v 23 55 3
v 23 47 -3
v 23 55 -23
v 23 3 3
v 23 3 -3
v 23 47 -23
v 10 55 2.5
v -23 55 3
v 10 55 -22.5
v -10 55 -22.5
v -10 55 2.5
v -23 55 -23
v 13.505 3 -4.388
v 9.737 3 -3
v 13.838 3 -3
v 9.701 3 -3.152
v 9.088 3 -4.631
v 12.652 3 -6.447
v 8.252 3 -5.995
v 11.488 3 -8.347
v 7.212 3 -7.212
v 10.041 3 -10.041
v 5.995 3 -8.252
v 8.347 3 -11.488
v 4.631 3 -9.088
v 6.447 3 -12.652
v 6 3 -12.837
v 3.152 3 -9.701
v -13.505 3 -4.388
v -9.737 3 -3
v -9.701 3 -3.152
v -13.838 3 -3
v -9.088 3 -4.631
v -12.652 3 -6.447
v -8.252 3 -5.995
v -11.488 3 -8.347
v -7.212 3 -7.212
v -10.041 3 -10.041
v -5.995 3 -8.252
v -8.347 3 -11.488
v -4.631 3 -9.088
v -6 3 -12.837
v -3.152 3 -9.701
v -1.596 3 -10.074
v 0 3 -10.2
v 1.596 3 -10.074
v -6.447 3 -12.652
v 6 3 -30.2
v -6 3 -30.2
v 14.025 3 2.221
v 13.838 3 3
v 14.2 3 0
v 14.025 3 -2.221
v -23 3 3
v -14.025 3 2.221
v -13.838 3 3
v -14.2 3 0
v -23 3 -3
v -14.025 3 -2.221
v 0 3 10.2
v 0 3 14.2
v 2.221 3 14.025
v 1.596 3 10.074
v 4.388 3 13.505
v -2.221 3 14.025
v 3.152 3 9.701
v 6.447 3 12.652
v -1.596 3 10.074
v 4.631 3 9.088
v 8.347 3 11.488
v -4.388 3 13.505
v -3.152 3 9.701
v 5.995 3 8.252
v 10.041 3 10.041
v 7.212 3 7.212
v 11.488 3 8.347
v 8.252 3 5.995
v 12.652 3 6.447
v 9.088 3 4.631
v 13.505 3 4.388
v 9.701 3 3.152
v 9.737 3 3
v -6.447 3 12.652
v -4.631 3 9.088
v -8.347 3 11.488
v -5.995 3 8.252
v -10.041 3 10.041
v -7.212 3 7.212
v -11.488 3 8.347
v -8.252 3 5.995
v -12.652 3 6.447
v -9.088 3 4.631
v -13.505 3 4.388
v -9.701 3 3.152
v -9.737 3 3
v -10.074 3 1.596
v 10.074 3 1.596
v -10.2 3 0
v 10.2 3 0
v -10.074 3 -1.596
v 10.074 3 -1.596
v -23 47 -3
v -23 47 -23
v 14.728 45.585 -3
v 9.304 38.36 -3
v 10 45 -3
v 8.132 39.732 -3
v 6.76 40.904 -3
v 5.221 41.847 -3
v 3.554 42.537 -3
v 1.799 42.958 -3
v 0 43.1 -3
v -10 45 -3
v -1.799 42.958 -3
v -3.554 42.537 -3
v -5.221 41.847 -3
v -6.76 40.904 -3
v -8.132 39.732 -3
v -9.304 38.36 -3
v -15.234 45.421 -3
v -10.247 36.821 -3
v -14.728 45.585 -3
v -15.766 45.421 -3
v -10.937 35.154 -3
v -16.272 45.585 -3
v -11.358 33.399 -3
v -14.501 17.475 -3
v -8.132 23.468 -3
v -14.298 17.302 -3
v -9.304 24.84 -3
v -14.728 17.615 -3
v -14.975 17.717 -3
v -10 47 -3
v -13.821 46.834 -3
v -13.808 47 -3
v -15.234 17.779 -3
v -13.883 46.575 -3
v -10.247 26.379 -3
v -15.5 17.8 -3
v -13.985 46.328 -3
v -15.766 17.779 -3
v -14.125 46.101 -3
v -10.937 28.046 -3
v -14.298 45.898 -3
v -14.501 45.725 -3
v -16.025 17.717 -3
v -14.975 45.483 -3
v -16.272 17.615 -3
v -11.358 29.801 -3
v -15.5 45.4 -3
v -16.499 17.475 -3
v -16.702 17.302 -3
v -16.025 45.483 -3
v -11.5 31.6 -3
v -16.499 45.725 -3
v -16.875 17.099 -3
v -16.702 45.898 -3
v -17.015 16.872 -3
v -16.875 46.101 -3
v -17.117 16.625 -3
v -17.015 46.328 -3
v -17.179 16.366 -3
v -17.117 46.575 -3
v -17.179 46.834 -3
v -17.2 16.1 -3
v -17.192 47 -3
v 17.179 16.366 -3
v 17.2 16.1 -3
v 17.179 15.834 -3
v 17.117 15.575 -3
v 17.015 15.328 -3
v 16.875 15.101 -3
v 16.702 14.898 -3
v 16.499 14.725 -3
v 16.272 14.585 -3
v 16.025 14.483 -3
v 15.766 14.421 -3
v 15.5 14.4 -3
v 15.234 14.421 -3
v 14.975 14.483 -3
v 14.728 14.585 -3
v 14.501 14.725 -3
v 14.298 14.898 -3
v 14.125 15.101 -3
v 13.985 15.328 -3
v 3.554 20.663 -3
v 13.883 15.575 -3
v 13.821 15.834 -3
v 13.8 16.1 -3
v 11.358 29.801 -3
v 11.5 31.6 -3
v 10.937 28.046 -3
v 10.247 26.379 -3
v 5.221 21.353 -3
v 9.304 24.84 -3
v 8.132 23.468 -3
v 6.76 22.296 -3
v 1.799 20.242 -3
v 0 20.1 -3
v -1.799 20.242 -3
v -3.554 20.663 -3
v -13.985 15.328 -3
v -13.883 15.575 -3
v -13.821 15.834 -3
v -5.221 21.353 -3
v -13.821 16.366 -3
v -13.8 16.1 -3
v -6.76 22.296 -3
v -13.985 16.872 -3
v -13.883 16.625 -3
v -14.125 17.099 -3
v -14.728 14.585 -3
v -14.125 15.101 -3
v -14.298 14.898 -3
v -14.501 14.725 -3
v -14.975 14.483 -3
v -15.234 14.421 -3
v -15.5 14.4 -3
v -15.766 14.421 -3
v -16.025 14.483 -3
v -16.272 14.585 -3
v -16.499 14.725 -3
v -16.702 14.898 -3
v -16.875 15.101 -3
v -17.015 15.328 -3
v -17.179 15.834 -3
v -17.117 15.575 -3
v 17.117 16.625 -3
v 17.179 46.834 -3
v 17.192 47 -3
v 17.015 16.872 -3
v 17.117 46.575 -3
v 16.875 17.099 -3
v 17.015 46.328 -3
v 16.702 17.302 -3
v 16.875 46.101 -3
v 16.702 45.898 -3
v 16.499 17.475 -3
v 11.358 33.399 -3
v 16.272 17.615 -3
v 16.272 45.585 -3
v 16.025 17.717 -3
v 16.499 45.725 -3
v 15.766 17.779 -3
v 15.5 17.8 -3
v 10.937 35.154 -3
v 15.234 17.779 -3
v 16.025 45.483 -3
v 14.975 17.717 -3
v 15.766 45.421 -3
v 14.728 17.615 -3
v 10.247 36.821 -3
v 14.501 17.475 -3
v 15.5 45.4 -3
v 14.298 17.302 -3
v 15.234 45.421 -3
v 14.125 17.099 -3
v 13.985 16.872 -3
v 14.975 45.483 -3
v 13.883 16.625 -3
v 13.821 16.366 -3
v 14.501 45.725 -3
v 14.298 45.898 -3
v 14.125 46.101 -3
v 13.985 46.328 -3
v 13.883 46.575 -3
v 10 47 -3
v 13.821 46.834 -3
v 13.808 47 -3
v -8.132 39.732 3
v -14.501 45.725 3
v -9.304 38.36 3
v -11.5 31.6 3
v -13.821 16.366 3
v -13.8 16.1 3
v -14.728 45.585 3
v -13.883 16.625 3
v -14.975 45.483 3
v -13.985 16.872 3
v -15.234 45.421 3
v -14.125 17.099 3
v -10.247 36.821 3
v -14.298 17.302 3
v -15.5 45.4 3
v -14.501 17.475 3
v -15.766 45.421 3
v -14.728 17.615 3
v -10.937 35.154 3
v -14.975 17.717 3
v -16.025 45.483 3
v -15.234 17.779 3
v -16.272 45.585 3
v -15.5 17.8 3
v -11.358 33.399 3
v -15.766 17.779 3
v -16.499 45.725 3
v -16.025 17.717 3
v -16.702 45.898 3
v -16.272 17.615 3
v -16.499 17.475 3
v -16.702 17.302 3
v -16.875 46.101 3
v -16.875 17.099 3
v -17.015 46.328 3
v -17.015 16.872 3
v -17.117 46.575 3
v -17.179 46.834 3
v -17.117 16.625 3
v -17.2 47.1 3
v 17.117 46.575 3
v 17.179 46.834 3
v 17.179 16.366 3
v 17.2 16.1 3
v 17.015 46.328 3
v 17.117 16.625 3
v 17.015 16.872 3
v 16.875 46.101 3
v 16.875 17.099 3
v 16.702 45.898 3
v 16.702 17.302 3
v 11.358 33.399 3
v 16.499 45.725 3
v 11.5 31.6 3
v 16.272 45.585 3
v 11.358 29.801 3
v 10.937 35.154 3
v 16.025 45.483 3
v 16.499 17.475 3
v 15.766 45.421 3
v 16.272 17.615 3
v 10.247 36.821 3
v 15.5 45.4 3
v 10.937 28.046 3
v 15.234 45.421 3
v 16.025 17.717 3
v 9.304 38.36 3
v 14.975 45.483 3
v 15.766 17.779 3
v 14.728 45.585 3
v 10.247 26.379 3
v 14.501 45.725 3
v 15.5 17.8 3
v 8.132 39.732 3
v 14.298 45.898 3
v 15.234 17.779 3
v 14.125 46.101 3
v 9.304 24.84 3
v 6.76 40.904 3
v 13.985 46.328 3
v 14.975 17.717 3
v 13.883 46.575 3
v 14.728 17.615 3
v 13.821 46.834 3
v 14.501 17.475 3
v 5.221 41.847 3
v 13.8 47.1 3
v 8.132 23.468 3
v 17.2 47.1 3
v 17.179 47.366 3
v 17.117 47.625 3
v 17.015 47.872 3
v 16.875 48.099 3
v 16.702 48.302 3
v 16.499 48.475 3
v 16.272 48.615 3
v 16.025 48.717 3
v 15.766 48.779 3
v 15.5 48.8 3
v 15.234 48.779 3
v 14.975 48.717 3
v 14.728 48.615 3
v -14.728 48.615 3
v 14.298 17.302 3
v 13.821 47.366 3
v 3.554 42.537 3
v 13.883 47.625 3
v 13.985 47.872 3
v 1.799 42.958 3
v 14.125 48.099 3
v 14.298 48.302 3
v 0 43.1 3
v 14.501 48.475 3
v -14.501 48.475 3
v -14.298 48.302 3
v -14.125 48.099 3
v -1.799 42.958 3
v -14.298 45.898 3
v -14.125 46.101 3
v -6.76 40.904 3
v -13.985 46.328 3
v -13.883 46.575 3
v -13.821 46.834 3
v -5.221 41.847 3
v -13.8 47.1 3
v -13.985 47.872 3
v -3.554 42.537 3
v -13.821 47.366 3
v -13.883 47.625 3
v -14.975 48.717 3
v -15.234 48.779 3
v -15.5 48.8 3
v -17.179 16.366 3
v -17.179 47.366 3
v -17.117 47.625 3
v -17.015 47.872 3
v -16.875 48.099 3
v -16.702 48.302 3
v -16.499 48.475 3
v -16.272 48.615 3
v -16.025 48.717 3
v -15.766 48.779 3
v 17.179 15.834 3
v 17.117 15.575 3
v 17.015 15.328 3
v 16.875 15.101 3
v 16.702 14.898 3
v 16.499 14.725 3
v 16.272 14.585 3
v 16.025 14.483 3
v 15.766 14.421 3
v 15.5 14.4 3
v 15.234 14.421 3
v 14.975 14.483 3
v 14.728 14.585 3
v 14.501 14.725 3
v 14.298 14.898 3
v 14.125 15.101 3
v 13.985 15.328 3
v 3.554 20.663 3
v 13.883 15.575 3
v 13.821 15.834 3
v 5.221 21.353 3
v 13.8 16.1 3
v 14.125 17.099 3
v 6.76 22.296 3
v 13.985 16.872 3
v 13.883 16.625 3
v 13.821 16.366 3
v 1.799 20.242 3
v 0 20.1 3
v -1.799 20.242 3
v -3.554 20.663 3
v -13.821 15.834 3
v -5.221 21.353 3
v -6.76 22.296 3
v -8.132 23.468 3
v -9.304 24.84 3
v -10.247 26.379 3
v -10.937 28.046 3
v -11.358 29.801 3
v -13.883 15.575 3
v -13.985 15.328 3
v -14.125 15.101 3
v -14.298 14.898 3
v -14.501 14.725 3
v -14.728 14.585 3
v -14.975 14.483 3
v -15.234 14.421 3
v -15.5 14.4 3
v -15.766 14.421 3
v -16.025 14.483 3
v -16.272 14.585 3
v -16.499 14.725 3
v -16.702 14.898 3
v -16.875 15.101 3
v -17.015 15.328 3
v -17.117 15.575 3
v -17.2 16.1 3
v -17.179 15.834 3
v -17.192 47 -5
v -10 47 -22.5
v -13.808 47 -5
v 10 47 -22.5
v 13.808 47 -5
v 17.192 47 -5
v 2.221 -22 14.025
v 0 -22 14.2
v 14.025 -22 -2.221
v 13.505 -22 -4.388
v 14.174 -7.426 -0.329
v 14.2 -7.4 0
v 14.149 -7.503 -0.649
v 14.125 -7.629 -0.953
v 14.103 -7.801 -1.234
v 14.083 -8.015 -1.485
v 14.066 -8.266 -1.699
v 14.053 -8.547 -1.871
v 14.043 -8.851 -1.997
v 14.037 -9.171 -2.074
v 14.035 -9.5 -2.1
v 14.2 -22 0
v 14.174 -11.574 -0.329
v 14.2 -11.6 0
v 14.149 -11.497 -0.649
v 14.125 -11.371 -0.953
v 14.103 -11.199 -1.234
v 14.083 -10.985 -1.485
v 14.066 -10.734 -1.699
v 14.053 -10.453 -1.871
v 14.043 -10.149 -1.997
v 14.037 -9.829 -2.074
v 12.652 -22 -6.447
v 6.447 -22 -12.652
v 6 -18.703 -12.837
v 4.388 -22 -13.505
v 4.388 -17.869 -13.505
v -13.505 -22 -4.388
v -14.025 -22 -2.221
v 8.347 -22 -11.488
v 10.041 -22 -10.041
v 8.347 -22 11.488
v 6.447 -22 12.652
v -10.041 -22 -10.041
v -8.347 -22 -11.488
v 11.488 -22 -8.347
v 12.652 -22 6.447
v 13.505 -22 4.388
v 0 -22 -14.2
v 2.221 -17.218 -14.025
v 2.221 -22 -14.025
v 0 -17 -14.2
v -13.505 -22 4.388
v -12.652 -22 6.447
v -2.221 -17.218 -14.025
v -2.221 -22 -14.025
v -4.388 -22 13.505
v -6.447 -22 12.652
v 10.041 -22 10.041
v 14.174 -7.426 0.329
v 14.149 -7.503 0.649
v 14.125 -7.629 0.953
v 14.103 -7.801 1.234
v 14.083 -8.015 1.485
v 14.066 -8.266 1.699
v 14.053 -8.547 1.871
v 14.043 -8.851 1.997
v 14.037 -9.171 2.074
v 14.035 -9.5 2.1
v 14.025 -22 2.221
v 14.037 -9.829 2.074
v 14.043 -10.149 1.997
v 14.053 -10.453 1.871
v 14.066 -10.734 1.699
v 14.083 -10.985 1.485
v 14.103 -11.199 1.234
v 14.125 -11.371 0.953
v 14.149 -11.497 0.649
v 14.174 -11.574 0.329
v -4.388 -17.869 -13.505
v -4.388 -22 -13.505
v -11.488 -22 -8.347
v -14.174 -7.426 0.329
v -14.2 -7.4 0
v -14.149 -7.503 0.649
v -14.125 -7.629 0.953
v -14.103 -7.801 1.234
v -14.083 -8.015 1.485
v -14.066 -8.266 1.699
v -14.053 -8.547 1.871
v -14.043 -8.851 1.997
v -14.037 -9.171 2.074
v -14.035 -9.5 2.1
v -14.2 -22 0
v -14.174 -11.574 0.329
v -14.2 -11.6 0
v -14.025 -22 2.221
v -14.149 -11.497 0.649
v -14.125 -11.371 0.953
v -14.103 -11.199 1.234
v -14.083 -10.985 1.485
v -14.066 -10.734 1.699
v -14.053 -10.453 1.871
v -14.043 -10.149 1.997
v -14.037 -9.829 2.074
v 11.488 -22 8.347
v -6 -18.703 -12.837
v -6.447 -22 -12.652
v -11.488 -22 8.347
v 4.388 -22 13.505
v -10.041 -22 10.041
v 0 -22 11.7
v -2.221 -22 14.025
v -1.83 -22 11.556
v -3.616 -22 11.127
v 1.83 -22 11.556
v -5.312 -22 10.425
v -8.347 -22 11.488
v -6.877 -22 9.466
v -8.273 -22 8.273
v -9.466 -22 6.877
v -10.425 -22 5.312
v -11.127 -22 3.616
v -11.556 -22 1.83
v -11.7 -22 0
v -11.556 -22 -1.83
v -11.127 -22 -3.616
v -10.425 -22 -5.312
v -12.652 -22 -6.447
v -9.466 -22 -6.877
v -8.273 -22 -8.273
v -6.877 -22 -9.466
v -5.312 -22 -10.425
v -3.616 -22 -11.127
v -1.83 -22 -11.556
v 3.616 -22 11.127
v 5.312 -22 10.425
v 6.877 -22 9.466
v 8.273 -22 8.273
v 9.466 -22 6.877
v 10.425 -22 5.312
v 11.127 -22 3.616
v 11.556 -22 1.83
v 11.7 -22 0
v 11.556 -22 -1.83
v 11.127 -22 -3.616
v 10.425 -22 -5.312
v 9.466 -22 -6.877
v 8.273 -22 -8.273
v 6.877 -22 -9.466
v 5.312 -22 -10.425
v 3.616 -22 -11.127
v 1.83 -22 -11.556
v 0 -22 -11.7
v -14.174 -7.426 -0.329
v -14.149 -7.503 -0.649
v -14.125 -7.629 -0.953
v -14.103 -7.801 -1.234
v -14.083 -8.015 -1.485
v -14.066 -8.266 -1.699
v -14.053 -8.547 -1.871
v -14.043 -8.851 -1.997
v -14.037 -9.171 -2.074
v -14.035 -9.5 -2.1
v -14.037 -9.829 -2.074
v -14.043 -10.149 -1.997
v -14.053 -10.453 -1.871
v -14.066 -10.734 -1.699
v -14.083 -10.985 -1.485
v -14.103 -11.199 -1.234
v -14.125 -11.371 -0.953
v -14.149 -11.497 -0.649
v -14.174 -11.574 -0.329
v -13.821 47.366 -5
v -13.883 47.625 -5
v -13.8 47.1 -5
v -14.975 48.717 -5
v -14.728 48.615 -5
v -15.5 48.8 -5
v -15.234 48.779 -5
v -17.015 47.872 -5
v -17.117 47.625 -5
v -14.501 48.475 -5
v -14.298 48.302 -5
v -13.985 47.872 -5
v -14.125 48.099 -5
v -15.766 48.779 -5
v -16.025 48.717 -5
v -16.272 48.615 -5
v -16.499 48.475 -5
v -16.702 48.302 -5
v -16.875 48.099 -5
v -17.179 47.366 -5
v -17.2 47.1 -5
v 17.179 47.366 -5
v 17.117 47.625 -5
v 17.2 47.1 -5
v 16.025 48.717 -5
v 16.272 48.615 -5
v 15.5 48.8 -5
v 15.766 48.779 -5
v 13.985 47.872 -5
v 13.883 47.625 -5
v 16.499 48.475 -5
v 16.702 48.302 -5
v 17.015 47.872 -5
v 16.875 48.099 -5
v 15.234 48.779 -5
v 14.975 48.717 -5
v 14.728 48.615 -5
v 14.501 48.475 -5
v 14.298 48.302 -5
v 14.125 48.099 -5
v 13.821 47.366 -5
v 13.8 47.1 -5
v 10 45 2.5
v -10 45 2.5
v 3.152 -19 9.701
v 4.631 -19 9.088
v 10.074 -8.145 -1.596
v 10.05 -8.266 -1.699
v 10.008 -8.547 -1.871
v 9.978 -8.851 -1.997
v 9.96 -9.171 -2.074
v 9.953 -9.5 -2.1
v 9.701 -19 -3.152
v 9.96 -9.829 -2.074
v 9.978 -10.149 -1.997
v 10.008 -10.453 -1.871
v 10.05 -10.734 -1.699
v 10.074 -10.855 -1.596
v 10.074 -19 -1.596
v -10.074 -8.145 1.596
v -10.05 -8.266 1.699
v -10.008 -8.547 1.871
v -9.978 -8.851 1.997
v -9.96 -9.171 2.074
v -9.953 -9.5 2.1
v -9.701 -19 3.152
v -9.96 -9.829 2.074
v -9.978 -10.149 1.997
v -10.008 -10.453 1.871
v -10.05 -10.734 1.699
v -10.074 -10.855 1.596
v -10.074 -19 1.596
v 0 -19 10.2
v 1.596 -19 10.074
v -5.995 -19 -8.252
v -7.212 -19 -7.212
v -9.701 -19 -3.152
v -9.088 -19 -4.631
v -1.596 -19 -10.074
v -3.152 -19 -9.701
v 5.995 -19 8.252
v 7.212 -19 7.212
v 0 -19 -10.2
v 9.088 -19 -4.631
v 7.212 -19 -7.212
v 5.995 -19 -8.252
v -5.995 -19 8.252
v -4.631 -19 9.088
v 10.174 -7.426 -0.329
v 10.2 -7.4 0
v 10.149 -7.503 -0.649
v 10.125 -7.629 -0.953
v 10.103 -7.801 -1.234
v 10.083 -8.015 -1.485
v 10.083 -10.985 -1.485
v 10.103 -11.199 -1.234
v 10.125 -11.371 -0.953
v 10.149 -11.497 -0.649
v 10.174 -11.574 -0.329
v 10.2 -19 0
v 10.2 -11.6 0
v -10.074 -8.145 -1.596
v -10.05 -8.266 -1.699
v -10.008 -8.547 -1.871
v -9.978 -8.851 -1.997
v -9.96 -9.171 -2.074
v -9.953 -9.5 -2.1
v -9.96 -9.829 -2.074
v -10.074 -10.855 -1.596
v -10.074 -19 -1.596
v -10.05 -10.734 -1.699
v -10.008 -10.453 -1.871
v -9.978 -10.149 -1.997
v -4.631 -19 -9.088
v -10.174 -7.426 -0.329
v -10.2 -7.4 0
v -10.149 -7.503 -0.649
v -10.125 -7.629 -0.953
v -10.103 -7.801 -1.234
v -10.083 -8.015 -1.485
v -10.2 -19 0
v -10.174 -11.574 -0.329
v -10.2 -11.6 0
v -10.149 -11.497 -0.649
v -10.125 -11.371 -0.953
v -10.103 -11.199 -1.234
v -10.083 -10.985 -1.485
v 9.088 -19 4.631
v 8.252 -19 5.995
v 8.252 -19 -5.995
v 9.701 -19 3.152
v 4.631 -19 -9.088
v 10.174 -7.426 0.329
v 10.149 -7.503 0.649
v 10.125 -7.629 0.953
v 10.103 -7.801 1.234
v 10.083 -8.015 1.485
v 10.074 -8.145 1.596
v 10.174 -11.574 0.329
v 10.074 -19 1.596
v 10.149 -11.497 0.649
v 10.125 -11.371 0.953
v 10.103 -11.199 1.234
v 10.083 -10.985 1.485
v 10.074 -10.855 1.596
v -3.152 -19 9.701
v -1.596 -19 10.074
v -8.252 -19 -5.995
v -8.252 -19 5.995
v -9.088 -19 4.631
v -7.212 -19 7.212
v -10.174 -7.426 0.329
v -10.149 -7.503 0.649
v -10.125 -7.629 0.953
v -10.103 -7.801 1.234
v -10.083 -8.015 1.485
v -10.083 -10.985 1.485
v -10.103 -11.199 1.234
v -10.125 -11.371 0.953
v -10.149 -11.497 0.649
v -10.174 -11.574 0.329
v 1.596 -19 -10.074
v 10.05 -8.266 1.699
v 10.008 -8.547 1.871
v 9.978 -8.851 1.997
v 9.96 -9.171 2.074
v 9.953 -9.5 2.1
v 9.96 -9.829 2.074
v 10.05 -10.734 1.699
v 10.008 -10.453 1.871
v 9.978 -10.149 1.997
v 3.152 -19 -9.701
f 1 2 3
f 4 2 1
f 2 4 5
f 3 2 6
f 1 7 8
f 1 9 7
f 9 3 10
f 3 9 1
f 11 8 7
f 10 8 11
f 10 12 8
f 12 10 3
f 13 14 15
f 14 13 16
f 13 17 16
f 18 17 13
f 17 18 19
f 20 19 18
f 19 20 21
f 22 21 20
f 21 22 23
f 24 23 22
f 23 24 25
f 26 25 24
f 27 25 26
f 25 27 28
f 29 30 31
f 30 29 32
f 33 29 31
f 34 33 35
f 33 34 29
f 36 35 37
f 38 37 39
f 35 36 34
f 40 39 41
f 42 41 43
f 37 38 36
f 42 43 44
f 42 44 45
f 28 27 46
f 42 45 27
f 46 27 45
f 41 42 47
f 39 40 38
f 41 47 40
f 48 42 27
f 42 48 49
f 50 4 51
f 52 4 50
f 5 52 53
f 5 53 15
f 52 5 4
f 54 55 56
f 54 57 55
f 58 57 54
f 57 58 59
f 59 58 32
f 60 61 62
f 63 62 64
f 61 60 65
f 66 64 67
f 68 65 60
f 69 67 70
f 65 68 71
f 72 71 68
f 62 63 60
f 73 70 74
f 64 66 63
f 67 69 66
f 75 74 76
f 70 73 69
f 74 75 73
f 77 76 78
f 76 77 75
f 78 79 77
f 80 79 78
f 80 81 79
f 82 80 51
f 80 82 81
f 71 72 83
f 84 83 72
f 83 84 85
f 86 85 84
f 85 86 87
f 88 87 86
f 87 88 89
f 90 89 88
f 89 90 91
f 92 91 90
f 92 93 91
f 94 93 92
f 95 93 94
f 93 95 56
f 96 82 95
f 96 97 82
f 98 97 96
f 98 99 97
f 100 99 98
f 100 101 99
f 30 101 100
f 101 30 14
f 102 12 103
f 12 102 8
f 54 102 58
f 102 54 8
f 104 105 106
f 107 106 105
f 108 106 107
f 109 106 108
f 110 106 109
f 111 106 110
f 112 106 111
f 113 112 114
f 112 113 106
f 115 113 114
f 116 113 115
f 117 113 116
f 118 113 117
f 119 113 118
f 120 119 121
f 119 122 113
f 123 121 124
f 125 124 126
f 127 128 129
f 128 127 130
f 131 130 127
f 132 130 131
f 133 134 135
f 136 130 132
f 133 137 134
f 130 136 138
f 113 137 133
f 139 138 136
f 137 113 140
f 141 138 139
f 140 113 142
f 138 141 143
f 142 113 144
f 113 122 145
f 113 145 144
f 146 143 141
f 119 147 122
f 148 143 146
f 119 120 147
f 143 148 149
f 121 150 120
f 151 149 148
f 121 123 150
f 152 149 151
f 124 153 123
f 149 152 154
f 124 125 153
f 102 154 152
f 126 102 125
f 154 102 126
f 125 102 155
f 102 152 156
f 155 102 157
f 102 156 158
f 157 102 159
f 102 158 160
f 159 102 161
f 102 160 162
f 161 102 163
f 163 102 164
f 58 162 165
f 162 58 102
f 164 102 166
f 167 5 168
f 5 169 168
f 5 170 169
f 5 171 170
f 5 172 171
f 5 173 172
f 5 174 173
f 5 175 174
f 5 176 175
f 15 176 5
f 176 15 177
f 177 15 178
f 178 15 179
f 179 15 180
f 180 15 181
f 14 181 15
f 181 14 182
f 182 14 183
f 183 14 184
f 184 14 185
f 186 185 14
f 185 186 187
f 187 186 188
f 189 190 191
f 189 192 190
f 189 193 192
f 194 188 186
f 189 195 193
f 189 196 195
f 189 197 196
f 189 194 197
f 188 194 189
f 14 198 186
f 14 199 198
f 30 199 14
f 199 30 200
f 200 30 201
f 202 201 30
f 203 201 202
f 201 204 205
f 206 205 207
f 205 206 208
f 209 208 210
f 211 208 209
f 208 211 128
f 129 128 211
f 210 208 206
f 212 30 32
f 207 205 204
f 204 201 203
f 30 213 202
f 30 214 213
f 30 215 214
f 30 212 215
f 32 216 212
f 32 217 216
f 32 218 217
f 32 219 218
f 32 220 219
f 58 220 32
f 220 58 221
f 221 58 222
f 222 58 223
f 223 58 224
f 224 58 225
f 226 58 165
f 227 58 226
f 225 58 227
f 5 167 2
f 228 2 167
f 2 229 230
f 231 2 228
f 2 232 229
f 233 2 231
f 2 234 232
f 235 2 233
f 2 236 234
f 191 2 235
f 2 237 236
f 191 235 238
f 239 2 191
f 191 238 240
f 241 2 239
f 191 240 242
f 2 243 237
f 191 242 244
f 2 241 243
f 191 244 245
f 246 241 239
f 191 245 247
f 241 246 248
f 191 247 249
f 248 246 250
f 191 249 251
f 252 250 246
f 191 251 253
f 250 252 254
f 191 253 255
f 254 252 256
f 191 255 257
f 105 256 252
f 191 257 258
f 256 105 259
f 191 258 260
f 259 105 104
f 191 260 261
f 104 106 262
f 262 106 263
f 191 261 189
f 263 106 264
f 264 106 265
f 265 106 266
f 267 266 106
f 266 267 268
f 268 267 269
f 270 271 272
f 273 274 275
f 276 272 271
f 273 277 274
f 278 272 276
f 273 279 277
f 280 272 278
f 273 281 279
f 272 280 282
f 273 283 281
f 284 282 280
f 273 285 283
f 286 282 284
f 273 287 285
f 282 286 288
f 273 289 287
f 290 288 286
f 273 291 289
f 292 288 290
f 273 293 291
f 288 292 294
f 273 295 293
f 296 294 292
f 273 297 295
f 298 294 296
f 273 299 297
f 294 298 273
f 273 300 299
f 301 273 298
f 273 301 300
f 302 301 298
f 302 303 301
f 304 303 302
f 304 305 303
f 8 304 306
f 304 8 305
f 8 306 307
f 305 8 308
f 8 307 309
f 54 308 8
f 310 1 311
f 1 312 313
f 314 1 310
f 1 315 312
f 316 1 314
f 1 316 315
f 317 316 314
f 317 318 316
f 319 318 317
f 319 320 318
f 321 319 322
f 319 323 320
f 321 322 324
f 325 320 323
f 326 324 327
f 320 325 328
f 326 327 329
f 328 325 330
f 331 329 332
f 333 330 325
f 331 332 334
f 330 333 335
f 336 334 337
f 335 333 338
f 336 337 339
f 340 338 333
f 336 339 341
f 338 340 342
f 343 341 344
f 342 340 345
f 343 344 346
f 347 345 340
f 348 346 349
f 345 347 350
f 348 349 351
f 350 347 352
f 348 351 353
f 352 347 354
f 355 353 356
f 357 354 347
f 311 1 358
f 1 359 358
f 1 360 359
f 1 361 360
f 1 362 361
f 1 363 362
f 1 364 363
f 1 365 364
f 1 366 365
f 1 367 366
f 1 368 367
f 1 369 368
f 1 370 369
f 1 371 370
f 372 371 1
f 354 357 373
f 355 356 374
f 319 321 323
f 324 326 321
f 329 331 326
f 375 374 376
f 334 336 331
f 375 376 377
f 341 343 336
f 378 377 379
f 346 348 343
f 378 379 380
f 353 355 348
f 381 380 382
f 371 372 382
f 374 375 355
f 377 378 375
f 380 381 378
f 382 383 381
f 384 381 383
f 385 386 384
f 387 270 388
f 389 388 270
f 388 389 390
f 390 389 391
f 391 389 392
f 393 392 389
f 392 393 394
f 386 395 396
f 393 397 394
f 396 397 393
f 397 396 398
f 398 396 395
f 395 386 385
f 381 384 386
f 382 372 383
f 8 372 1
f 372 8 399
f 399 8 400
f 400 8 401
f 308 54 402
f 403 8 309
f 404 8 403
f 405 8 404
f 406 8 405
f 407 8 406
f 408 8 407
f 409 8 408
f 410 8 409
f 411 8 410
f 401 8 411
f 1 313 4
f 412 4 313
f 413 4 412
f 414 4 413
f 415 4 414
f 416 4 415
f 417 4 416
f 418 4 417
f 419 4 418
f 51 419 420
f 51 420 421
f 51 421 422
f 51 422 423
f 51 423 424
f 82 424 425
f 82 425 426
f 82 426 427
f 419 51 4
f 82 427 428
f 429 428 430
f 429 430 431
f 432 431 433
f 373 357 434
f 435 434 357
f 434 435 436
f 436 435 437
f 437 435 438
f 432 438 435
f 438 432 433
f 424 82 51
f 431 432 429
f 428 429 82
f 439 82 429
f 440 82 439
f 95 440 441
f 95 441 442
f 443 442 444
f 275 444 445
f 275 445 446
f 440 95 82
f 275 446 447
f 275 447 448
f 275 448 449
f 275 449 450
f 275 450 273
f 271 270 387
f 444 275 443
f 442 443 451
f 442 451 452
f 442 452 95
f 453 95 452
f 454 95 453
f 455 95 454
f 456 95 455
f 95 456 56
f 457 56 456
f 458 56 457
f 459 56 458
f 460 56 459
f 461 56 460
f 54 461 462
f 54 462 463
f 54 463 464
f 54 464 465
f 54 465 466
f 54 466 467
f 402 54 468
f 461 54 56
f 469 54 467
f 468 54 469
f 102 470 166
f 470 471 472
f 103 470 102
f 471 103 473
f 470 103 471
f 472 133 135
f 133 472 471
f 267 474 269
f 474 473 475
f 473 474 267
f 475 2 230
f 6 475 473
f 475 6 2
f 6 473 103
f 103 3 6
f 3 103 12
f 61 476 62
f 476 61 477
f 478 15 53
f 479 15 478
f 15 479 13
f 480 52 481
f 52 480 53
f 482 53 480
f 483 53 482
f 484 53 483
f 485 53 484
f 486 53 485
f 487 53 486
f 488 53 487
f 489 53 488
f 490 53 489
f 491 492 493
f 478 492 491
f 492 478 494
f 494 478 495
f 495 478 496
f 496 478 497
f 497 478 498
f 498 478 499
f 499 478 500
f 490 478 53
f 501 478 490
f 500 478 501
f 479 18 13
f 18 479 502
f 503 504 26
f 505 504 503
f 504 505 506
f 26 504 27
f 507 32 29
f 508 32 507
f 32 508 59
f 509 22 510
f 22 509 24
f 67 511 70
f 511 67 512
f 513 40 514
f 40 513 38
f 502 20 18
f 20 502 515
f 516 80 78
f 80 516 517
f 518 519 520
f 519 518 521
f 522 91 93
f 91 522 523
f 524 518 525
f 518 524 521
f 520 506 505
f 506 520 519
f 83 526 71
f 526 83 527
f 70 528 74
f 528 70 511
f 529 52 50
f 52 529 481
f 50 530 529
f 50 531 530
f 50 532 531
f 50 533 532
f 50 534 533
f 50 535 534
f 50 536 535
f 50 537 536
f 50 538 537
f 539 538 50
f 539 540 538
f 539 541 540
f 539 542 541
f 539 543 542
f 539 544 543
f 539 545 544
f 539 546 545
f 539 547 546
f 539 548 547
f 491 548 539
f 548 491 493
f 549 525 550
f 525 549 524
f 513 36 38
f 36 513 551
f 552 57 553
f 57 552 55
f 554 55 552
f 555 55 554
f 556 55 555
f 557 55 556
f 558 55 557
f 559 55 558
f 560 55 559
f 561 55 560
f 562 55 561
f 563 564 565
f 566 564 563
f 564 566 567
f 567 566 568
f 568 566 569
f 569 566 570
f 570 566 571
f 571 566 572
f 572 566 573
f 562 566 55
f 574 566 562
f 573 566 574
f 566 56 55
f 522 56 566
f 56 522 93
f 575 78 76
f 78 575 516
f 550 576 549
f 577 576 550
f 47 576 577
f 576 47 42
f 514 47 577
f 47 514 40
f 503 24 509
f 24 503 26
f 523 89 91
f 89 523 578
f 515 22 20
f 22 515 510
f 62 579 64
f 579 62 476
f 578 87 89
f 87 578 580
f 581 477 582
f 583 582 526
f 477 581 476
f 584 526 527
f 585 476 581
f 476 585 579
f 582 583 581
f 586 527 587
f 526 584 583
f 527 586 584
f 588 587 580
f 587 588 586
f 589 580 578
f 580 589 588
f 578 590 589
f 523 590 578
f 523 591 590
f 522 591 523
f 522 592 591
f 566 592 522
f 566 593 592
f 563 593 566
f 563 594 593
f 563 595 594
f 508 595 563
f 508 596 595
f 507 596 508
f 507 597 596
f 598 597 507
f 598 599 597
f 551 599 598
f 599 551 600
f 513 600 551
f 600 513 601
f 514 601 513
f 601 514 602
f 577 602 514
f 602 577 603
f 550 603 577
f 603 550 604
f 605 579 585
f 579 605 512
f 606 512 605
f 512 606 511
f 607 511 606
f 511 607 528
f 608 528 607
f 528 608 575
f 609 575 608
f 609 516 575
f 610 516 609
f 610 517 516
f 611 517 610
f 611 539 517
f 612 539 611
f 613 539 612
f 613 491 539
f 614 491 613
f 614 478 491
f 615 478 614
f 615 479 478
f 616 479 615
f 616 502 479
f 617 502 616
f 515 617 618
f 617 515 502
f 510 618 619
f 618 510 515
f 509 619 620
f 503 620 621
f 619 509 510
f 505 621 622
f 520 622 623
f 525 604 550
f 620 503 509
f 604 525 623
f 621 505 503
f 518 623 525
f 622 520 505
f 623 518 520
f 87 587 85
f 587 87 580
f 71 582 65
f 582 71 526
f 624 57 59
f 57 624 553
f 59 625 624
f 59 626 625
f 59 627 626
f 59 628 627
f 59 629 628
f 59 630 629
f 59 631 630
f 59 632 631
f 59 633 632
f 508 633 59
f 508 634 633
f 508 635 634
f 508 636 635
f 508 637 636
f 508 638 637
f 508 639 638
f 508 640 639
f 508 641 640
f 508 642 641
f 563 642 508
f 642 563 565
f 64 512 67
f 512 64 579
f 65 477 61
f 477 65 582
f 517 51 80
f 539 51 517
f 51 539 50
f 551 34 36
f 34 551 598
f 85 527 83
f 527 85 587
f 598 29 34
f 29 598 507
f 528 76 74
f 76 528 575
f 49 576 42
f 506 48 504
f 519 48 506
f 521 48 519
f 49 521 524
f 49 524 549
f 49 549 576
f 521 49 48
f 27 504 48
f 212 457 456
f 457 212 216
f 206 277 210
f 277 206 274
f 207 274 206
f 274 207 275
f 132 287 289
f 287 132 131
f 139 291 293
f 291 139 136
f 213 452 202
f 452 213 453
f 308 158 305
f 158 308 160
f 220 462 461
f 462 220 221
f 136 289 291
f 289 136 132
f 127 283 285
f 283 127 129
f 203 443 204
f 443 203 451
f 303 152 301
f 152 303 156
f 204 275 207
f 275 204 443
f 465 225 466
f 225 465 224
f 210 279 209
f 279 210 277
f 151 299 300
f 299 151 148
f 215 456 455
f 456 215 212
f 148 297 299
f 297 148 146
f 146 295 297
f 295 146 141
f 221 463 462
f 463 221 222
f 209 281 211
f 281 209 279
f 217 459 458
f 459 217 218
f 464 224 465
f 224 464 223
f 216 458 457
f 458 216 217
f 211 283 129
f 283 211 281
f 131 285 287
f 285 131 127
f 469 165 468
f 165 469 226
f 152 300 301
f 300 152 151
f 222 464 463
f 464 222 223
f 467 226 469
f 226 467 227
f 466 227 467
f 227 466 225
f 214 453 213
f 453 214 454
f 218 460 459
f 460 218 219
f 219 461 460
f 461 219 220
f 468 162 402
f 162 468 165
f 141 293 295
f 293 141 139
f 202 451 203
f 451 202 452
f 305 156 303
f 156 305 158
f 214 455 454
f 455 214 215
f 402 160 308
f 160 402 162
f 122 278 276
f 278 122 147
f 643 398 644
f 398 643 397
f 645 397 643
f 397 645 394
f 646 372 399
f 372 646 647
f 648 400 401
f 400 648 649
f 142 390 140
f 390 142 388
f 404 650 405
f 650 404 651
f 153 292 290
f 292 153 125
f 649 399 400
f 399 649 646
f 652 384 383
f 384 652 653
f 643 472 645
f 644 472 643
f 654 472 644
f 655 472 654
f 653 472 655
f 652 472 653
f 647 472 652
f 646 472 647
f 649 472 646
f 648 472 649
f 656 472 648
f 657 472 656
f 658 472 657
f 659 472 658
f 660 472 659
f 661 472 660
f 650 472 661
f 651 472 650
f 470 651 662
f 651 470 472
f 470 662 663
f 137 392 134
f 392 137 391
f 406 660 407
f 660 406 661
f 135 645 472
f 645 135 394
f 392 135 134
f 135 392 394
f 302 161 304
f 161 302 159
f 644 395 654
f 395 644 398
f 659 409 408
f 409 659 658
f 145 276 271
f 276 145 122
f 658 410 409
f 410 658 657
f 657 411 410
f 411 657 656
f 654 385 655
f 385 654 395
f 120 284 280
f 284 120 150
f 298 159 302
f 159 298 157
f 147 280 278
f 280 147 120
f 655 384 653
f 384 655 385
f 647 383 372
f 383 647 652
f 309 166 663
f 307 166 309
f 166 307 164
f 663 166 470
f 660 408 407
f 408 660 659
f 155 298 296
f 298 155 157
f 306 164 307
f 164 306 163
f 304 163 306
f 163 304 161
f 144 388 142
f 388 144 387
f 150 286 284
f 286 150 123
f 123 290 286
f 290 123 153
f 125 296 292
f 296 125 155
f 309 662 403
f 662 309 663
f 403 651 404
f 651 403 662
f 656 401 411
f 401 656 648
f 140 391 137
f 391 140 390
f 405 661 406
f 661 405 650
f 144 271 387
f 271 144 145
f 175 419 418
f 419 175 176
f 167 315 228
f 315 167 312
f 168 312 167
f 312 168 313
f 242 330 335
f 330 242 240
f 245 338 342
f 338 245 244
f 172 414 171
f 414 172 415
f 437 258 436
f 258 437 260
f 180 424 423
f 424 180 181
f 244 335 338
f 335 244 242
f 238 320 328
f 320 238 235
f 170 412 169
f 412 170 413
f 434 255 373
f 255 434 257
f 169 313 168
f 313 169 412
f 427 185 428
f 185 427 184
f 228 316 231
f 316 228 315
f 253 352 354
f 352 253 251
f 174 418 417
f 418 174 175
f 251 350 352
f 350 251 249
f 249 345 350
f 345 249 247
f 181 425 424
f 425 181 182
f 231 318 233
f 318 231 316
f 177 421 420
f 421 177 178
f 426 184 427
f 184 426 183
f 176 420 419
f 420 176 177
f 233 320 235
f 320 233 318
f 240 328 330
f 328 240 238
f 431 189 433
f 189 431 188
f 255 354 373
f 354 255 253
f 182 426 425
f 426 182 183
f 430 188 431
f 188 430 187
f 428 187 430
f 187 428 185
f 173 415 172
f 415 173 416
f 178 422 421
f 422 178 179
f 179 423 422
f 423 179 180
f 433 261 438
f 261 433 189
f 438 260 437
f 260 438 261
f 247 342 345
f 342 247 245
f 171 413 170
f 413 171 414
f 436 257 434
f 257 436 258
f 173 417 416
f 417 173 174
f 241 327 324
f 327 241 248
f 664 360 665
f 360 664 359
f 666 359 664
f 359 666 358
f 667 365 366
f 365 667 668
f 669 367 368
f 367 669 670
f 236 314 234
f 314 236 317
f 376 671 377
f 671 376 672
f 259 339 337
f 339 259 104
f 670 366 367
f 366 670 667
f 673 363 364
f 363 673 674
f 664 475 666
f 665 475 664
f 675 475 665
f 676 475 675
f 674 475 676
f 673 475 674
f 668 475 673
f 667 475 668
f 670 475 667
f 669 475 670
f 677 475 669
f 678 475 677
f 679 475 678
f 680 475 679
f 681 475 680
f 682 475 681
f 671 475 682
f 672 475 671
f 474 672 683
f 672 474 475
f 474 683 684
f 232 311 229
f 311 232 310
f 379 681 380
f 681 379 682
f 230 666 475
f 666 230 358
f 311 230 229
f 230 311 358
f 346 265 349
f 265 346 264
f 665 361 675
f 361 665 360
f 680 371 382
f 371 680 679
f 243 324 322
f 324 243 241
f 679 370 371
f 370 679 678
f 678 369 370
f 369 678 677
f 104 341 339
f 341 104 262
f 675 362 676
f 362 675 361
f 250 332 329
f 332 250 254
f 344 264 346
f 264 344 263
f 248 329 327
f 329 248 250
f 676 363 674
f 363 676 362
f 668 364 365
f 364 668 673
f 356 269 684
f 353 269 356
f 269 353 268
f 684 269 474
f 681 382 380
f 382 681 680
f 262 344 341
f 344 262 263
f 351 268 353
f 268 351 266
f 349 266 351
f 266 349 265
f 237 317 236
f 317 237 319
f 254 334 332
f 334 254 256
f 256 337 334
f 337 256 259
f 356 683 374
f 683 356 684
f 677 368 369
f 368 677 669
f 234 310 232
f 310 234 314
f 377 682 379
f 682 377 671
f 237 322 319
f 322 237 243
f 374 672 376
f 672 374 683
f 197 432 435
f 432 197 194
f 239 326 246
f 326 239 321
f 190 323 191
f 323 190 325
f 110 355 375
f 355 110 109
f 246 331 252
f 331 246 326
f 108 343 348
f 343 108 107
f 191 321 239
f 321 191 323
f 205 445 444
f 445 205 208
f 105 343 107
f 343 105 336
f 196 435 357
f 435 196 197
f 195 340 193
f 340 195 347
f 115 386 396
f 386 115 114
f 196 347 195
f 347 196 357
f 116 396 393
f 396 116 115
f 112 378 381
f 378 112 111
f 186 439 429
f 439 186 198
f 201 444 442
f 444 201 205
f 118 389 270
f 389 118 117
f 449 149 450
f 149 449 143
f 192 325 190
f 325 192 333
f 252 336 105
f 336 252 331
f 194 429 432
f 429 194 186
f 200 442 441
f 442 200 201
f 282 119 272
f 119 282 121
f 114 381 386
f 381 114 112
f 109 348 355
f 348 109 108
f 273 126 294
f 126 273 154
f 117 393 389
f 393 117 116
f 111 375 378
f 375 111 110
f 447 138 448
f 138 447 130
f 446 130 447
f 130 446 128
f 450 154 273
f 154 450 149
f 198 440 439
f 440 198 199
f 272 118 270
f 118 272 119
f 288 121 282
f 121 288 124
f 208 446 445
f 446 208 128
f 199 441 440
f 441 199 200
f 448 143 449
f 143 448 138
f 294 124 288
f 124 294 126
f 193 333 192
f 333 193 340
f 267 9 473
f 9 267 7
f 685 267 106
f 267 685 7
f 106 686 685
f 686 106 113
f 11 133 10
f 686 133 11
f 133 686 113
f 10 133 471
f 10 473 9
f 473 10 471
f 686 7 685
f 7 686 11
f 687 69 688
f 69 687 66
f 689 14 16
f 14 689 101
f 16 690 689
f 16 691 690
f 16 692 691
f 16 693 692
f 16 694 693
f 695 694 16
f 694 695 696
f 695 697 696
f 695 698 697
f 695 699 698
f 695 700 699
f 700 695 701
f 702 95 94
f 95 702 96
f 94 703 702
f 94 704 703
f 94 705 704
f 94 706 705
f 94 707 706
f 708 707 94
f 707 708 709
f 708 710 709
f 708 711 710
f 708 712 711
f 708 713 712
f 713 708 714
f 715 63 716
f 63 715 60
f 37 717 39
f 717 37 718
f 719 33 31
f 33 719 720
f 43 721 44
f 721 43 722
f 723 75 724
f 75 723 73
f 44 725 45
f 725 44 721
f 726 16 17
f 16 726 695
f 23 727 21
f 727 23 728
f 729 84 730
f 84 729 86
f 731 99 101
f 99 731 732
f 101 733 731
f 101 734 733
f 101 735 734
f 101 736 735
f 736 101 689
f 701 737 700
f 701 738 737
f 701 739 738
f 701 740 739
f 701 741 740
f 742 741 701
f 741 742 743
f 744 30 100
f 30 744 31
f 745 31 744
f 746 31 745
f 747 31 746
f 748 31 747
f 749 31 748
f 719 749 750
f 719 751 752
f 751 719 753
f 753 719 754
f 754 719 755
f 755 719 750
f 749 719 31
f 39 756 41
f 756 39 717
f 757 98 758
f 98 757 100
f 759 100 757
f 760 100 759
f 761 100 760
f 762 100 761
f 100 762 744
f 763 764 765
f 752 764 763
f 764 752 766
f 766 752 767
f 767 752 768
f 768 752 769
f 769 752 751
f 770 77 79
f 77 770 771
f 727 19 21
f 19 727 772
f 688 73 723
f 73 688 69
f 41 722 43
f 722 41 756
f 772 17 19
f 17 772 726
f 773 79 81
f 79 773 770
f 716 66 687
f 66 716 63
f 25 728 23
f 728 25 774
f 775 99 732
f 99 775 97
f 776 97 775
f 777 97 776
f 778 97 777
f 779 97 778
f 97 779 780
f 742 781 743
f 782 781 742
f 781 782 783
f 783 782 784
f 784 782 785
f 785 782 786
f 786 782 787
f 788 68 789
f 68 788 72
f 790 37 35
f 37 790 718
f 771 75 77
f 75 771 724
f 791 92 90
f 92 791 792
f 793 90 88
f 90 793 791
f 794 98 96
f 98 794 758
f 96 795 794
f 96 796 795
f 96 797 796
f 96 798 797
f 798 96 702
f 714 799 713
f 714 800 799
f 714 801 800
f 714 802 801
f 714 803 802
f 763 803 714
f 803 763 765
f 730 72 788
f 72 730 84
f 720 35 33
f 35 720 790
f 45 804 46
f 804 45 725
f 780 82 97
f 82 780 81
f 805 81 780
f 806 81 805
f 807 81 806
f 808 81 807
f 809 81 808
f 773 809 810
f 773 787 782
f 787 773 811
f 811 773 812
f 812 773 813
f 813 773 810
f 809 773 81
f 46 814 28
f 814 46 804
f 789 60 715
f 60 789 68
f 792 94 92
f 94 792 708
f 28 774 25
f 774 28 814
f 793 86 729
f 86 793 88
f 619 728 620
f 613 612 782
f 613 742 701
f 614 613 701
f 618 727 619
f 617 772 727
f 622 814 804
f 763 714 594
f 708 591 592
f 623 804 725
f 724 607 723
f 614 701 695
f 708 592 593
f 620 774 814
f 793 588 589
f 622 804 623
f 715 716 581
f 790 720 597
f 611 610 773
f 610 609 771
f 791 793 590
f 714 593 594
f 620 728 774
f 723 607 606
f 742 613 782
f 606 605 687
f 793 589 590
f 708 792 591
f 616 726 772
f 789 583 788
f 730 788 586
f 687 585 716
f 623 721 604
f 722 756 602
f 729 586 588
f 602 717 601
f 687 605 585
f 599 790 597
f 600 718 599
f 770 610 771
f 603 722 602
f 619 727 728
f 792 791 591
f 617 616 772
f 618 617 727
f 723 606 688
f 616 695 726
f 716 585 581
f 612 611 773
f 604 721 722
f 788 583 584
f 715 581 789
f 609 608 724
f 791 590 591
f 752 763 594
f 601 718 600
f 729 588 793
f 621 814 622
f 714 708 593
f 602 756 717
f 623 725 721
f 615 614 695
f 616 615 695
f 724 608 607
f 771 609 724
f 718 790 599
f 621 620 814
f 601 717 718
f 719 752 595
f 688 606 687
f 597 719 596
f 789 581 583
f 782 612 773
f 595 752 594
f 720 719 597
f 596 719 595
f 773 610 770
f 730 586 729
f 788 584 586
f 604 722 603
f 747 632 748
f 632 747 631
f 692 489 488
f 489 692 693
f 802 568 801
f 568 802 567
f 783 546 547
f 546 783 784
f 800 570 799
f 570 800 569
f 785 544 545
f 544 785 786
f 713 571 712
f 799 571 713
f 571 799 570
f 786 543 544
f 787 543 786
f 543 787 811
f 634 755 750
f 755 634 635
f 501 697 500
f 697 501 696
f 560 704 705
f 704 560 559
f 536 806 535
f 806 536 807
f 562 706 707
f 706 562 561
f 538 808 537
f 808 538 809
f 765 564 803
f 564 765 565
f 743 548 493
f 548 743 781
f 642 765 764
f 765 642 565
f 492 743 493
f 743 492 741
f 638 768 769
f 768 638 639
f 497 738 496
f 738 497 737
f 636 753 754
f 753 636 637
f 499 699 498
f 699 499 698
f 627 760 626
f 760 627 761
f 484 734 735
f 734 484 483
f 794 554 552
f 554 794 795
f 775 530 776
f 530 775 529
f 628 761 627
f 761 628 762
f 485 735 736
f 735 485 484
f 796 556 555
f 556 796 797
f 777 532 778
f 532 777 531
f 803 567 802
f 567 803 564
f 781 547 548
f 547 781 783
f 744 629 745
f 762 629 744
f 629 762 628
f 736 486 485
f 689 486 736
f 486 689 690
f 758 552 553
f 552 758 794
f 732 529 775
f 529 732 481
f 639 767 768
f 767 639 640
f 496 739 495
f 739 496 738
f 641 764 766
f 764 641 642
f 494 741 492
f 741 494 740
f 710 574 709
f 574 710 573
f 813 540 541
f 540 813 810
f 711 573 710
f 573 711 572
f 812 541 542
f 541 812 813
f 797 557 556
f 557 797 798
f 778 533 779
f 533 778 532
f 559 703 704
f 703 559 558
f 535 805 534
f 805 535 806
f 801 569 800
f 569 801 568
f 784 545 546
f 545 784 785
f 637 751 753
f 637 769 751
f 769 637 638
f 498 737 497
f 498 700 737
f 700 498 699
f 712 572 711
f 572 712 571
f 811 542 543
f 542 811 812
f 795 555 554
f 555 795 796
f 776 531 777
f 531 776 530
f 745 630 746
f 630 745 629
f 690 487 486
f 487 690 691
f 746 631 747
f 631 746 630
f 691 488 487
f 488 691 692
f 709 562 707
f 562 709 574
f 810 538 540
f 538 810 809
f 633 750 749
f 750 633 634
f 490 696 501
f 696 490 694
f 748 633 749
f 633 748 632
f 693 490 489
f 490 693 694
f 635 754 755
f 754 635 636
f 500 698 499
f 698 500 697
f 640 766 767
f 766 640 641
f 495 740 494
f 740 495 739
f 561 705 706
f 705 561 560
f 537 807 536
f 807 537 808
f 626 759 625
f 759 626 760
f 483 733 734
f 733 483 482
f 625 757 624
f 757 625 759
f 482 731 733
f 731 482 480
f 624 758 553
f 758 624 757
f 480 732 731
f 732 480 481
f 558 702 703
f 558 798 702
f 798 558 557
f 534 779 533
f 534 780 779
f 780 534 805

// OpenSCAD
// file: tower_sheave.scad
// ====================================================================
// Tower End Sheave Wheel (100% 3D-Printable - Flat on Bed at Z = 0)
// Used at Tower A and Tower B.
// - High flanges to retain cable line securely.
// - 5mm central bore: spins on an M4/M5 bolt in Phase 1;
//   directly accepts a NEMA 17 D-shaft in Phase 2 (includes M3 grub screw hole).
// ====================================================================

$fn = 60;

// Dimensions (mm)
sheave_outer_dia = 54.0; // Outer flange diameter
sheave_pitch_dia = 44.0; // Cable track diameter
sheave_width     = 8.0;  // Total sheave rim width
hub_h            = 12.0; // Extended center hub for shaft grip and standoff
bore_dia         = 5.2;  // 5mm motor shaft / M5 screw clearance
grub_screw_dia   = 3.0;  // M3 set/grub screw for Phase 2 motor lock
hub_lift         = (hub_h - sheave_width) / 2; // 2.0mm standoff from bed

module tower_sheave() {
    difference() {
        union() {
            // Main sheave disc (lifted by hub standoff)
            translate([0, 0, hub_lift])
                cylinder(d = sheave_outer_dia, h = sheave_width);
            // Extended center hub (starts at Z = 0)
            cylinder(d = 14.0, h = hub_h);
        }
        
        // Center shaft bore
        translate([0, 0, -1])
            cylinder(d = bore_dia, h = hub_h + 2);
        
        // Deep cable groove
        translate([0, 0, hub_h / 2])
            rotate_extrude(convexity = 10) {
                translate([sheave_pitch_dia / 2, 0, 0])
                    polygon([
                        [-2.0, 0],
                        [6.0, 3.2],
                        [6.0, -3.2]
                    ]);
            }
        
        // Radial M3 grub screw hole (for clamping onto motor shaft in Phase 2)
        translate([0, 0, hub_h / 2])
            rotate([90, 0, 0])
                cylinder(d = grub_screw_dia, h = 20, center = false);
            
        // Decorative weight-reduction spoke cutouts (holiday snowflake / star style)
        for (a = [0 : 60 : 300]) {
            rotate([0, 0, a])
                translate([16, 0, -1])
                    cylinder(d = 8, h = hub_h + 2);
        }
    }
}

// Render flat on bed at Z = 0
tower_sheave();
// file: tower_head_station_a.scad
// ====================================================================
// Tower Head Station A: Drive-Ready Station (100% 3D-Printable)
// 
// Dual-Role Design:
// - Phase 1: Mounts a passive sheave wheel on an M5 bolt axle.
// - Phase 2: Directly bolts to a NEMA 17 stepper motor (4x M3 holes on 31mm centers)
//   without needing any modifications or reprints!
// Bottom has a 20mm socket to mount onto a wooden dowel, PVC pipe, or printed truss.
// ====================================================================

use <tower_sheave.scad>;

$fn = 40;

// Dimensions
bracket_w        = 46.0; // Width of mounting face
bracket_h        = 52.0; // Height of mounting plate
plate_th         = 6.0;  // Thickness of plate
nema17_hole_dist = 31.0; // NEMA 17 standard mounting hole spacing
nema17_pilot_d   = 23.0; // NEMA 17 center collar clearance
m3_hole_d        = 3.4;  // M3 bolt clearance
socket_inner_d   = 20.4; // Fits 20mm (or 3/4 inch) dowel/pipe
socket_wall      = 4.0;
socket_depth     = 25.0;

module tower_head_a() {
    difference() {
        union() {
            // Main motor/axle vertical mounting faceplate
            translate([0, 0, bracket_h / 2])
                cube([bracket_w, plate_th, bracket_h], center = true);

            // Overhead cable guide horn
            translate([0, 10, bracket_h - 4])
                cube([bracket_w, 20 + plate_th, 8], center = true);

            // Lower mast mounting socket
            translate([0, 0, -socket_depth / 2])
                cylinder(d = socket_inner_d + (socket_wall * 2), h = socket_depth, center = true);
                
            // Triangular gussets for structural rigidity
            translate([0, socket_inner_d / 2, 0])
                rotate([0, 90, 0])
                    linear_extrude(height = 12, center = true)
                        polygon([[0, 0], [25, 0], [0, 20]]);
        }

        // Center pilot hole (for motor collar or Phase 1 M5 axle bolt)
        translate([0, 0, bracket_h * 0.55])
            rotate([90, 0, 0])
                cylinder(d = nema17_pilot_d, h = plate_th + 4, center = true);

        // 4x NEMA 17 mounting holes (31mm square pattern)
        for (dx = [-nema17_hole_dist / 2, nema17_hole_dist / 2]) {
            for (dz = [-nema17_hole_dist / 2, nema17_hole_dist / 2]) {
                translate([dx, 0, (bracket_h * 0.55) + dz])
                    rotate([90, 0, 0])
                        cylinder(d = m3_hole_d, h = plate_th + 4, center = true);
            }
        }

        // Cable path slot through the overhead horn
        translate([0, 10, bracket_h - 4])
            cube([20, 25, 12], center = true);

        // Mast socket cavity (bottom) with 45-degree self-aligning lead-in chamfer
        translate([0, 0, -socket_depth / 2 - 1])
            cylinder(d = socket_inner_d, h = socket_depth + 2, center = true);
        translate([0, 0, -socket_depth])
            cylinder(d1 = socket_inner_d + 3.0, d2 = socket_inner_d, h = 3.0);

        // Mast cross-pin clamp hole
        translate([0, 0, -socket_depth / 2])
            rotate([0, 90, 0])
                cylinder(d = 4.2, h = socket_inner_d + 12, center = true);

        // Embossed Station Identification on face: "A - DRIVE"
        translate([-bracket_w / 2 + 3, -plate_th / 2 - 0.1, 4])
            rotate([90, 0, 0])
                linear_extrude(height = 0.8)
                    text("A - DRIVE", size = 4.2, font = "Liberation Sans:style=Bold");
    }
}

// Visual preview with sheave wheel attached
module preview_station_a() {
    tower_head_a();
    #translate([0, plate_th / 2 + 8, bracket_h * 0.55])
        rotate([90, 0, 0])
            tower_sheave();
}

// ====================================================================
// Selection
// ====================================================================
// "print"      -> Upright resting flat on socket rim at Z = 0
// "print_flat" -> Laid flat on its rear motor plate at Z = 0 (ZERO supports!)
// "preview"    -> Upright with sheave wheel attached
mode = "print_flat";

if (mode == "print") {
    translate([0, 0, socket_depth])
        tower_head_a();
} else if (mode == "print_flat") {
    // Laid flat on rear face of motor plate at Z = 0
    translate([0, plate_th / 2, 0])
        rotate([-90, 0, 0])
            tower_head_a();
} else if (mode == "preview") {
    preview_station_a();
}
// main file
// ====================================================================
// [PRINT 06] Tower Head Station A (Drive-Ready Station)
// Laid completely flat on its rear motor plate at Z = 0 (100% adhesion).
// Pre-drilled standard NEMA 17 holes print vertically through the face.
// ZERO SUPPORTS NEEDED!
// ====================================================================

use <tower_head_station_a.scad>;

$fn = 50;

// Centered on bed, resting flat on rear face of motor plate at Z = 0
translate([0, 3.0, 0])
    rotate([-90, 0, 0])
        tower_head_a();
